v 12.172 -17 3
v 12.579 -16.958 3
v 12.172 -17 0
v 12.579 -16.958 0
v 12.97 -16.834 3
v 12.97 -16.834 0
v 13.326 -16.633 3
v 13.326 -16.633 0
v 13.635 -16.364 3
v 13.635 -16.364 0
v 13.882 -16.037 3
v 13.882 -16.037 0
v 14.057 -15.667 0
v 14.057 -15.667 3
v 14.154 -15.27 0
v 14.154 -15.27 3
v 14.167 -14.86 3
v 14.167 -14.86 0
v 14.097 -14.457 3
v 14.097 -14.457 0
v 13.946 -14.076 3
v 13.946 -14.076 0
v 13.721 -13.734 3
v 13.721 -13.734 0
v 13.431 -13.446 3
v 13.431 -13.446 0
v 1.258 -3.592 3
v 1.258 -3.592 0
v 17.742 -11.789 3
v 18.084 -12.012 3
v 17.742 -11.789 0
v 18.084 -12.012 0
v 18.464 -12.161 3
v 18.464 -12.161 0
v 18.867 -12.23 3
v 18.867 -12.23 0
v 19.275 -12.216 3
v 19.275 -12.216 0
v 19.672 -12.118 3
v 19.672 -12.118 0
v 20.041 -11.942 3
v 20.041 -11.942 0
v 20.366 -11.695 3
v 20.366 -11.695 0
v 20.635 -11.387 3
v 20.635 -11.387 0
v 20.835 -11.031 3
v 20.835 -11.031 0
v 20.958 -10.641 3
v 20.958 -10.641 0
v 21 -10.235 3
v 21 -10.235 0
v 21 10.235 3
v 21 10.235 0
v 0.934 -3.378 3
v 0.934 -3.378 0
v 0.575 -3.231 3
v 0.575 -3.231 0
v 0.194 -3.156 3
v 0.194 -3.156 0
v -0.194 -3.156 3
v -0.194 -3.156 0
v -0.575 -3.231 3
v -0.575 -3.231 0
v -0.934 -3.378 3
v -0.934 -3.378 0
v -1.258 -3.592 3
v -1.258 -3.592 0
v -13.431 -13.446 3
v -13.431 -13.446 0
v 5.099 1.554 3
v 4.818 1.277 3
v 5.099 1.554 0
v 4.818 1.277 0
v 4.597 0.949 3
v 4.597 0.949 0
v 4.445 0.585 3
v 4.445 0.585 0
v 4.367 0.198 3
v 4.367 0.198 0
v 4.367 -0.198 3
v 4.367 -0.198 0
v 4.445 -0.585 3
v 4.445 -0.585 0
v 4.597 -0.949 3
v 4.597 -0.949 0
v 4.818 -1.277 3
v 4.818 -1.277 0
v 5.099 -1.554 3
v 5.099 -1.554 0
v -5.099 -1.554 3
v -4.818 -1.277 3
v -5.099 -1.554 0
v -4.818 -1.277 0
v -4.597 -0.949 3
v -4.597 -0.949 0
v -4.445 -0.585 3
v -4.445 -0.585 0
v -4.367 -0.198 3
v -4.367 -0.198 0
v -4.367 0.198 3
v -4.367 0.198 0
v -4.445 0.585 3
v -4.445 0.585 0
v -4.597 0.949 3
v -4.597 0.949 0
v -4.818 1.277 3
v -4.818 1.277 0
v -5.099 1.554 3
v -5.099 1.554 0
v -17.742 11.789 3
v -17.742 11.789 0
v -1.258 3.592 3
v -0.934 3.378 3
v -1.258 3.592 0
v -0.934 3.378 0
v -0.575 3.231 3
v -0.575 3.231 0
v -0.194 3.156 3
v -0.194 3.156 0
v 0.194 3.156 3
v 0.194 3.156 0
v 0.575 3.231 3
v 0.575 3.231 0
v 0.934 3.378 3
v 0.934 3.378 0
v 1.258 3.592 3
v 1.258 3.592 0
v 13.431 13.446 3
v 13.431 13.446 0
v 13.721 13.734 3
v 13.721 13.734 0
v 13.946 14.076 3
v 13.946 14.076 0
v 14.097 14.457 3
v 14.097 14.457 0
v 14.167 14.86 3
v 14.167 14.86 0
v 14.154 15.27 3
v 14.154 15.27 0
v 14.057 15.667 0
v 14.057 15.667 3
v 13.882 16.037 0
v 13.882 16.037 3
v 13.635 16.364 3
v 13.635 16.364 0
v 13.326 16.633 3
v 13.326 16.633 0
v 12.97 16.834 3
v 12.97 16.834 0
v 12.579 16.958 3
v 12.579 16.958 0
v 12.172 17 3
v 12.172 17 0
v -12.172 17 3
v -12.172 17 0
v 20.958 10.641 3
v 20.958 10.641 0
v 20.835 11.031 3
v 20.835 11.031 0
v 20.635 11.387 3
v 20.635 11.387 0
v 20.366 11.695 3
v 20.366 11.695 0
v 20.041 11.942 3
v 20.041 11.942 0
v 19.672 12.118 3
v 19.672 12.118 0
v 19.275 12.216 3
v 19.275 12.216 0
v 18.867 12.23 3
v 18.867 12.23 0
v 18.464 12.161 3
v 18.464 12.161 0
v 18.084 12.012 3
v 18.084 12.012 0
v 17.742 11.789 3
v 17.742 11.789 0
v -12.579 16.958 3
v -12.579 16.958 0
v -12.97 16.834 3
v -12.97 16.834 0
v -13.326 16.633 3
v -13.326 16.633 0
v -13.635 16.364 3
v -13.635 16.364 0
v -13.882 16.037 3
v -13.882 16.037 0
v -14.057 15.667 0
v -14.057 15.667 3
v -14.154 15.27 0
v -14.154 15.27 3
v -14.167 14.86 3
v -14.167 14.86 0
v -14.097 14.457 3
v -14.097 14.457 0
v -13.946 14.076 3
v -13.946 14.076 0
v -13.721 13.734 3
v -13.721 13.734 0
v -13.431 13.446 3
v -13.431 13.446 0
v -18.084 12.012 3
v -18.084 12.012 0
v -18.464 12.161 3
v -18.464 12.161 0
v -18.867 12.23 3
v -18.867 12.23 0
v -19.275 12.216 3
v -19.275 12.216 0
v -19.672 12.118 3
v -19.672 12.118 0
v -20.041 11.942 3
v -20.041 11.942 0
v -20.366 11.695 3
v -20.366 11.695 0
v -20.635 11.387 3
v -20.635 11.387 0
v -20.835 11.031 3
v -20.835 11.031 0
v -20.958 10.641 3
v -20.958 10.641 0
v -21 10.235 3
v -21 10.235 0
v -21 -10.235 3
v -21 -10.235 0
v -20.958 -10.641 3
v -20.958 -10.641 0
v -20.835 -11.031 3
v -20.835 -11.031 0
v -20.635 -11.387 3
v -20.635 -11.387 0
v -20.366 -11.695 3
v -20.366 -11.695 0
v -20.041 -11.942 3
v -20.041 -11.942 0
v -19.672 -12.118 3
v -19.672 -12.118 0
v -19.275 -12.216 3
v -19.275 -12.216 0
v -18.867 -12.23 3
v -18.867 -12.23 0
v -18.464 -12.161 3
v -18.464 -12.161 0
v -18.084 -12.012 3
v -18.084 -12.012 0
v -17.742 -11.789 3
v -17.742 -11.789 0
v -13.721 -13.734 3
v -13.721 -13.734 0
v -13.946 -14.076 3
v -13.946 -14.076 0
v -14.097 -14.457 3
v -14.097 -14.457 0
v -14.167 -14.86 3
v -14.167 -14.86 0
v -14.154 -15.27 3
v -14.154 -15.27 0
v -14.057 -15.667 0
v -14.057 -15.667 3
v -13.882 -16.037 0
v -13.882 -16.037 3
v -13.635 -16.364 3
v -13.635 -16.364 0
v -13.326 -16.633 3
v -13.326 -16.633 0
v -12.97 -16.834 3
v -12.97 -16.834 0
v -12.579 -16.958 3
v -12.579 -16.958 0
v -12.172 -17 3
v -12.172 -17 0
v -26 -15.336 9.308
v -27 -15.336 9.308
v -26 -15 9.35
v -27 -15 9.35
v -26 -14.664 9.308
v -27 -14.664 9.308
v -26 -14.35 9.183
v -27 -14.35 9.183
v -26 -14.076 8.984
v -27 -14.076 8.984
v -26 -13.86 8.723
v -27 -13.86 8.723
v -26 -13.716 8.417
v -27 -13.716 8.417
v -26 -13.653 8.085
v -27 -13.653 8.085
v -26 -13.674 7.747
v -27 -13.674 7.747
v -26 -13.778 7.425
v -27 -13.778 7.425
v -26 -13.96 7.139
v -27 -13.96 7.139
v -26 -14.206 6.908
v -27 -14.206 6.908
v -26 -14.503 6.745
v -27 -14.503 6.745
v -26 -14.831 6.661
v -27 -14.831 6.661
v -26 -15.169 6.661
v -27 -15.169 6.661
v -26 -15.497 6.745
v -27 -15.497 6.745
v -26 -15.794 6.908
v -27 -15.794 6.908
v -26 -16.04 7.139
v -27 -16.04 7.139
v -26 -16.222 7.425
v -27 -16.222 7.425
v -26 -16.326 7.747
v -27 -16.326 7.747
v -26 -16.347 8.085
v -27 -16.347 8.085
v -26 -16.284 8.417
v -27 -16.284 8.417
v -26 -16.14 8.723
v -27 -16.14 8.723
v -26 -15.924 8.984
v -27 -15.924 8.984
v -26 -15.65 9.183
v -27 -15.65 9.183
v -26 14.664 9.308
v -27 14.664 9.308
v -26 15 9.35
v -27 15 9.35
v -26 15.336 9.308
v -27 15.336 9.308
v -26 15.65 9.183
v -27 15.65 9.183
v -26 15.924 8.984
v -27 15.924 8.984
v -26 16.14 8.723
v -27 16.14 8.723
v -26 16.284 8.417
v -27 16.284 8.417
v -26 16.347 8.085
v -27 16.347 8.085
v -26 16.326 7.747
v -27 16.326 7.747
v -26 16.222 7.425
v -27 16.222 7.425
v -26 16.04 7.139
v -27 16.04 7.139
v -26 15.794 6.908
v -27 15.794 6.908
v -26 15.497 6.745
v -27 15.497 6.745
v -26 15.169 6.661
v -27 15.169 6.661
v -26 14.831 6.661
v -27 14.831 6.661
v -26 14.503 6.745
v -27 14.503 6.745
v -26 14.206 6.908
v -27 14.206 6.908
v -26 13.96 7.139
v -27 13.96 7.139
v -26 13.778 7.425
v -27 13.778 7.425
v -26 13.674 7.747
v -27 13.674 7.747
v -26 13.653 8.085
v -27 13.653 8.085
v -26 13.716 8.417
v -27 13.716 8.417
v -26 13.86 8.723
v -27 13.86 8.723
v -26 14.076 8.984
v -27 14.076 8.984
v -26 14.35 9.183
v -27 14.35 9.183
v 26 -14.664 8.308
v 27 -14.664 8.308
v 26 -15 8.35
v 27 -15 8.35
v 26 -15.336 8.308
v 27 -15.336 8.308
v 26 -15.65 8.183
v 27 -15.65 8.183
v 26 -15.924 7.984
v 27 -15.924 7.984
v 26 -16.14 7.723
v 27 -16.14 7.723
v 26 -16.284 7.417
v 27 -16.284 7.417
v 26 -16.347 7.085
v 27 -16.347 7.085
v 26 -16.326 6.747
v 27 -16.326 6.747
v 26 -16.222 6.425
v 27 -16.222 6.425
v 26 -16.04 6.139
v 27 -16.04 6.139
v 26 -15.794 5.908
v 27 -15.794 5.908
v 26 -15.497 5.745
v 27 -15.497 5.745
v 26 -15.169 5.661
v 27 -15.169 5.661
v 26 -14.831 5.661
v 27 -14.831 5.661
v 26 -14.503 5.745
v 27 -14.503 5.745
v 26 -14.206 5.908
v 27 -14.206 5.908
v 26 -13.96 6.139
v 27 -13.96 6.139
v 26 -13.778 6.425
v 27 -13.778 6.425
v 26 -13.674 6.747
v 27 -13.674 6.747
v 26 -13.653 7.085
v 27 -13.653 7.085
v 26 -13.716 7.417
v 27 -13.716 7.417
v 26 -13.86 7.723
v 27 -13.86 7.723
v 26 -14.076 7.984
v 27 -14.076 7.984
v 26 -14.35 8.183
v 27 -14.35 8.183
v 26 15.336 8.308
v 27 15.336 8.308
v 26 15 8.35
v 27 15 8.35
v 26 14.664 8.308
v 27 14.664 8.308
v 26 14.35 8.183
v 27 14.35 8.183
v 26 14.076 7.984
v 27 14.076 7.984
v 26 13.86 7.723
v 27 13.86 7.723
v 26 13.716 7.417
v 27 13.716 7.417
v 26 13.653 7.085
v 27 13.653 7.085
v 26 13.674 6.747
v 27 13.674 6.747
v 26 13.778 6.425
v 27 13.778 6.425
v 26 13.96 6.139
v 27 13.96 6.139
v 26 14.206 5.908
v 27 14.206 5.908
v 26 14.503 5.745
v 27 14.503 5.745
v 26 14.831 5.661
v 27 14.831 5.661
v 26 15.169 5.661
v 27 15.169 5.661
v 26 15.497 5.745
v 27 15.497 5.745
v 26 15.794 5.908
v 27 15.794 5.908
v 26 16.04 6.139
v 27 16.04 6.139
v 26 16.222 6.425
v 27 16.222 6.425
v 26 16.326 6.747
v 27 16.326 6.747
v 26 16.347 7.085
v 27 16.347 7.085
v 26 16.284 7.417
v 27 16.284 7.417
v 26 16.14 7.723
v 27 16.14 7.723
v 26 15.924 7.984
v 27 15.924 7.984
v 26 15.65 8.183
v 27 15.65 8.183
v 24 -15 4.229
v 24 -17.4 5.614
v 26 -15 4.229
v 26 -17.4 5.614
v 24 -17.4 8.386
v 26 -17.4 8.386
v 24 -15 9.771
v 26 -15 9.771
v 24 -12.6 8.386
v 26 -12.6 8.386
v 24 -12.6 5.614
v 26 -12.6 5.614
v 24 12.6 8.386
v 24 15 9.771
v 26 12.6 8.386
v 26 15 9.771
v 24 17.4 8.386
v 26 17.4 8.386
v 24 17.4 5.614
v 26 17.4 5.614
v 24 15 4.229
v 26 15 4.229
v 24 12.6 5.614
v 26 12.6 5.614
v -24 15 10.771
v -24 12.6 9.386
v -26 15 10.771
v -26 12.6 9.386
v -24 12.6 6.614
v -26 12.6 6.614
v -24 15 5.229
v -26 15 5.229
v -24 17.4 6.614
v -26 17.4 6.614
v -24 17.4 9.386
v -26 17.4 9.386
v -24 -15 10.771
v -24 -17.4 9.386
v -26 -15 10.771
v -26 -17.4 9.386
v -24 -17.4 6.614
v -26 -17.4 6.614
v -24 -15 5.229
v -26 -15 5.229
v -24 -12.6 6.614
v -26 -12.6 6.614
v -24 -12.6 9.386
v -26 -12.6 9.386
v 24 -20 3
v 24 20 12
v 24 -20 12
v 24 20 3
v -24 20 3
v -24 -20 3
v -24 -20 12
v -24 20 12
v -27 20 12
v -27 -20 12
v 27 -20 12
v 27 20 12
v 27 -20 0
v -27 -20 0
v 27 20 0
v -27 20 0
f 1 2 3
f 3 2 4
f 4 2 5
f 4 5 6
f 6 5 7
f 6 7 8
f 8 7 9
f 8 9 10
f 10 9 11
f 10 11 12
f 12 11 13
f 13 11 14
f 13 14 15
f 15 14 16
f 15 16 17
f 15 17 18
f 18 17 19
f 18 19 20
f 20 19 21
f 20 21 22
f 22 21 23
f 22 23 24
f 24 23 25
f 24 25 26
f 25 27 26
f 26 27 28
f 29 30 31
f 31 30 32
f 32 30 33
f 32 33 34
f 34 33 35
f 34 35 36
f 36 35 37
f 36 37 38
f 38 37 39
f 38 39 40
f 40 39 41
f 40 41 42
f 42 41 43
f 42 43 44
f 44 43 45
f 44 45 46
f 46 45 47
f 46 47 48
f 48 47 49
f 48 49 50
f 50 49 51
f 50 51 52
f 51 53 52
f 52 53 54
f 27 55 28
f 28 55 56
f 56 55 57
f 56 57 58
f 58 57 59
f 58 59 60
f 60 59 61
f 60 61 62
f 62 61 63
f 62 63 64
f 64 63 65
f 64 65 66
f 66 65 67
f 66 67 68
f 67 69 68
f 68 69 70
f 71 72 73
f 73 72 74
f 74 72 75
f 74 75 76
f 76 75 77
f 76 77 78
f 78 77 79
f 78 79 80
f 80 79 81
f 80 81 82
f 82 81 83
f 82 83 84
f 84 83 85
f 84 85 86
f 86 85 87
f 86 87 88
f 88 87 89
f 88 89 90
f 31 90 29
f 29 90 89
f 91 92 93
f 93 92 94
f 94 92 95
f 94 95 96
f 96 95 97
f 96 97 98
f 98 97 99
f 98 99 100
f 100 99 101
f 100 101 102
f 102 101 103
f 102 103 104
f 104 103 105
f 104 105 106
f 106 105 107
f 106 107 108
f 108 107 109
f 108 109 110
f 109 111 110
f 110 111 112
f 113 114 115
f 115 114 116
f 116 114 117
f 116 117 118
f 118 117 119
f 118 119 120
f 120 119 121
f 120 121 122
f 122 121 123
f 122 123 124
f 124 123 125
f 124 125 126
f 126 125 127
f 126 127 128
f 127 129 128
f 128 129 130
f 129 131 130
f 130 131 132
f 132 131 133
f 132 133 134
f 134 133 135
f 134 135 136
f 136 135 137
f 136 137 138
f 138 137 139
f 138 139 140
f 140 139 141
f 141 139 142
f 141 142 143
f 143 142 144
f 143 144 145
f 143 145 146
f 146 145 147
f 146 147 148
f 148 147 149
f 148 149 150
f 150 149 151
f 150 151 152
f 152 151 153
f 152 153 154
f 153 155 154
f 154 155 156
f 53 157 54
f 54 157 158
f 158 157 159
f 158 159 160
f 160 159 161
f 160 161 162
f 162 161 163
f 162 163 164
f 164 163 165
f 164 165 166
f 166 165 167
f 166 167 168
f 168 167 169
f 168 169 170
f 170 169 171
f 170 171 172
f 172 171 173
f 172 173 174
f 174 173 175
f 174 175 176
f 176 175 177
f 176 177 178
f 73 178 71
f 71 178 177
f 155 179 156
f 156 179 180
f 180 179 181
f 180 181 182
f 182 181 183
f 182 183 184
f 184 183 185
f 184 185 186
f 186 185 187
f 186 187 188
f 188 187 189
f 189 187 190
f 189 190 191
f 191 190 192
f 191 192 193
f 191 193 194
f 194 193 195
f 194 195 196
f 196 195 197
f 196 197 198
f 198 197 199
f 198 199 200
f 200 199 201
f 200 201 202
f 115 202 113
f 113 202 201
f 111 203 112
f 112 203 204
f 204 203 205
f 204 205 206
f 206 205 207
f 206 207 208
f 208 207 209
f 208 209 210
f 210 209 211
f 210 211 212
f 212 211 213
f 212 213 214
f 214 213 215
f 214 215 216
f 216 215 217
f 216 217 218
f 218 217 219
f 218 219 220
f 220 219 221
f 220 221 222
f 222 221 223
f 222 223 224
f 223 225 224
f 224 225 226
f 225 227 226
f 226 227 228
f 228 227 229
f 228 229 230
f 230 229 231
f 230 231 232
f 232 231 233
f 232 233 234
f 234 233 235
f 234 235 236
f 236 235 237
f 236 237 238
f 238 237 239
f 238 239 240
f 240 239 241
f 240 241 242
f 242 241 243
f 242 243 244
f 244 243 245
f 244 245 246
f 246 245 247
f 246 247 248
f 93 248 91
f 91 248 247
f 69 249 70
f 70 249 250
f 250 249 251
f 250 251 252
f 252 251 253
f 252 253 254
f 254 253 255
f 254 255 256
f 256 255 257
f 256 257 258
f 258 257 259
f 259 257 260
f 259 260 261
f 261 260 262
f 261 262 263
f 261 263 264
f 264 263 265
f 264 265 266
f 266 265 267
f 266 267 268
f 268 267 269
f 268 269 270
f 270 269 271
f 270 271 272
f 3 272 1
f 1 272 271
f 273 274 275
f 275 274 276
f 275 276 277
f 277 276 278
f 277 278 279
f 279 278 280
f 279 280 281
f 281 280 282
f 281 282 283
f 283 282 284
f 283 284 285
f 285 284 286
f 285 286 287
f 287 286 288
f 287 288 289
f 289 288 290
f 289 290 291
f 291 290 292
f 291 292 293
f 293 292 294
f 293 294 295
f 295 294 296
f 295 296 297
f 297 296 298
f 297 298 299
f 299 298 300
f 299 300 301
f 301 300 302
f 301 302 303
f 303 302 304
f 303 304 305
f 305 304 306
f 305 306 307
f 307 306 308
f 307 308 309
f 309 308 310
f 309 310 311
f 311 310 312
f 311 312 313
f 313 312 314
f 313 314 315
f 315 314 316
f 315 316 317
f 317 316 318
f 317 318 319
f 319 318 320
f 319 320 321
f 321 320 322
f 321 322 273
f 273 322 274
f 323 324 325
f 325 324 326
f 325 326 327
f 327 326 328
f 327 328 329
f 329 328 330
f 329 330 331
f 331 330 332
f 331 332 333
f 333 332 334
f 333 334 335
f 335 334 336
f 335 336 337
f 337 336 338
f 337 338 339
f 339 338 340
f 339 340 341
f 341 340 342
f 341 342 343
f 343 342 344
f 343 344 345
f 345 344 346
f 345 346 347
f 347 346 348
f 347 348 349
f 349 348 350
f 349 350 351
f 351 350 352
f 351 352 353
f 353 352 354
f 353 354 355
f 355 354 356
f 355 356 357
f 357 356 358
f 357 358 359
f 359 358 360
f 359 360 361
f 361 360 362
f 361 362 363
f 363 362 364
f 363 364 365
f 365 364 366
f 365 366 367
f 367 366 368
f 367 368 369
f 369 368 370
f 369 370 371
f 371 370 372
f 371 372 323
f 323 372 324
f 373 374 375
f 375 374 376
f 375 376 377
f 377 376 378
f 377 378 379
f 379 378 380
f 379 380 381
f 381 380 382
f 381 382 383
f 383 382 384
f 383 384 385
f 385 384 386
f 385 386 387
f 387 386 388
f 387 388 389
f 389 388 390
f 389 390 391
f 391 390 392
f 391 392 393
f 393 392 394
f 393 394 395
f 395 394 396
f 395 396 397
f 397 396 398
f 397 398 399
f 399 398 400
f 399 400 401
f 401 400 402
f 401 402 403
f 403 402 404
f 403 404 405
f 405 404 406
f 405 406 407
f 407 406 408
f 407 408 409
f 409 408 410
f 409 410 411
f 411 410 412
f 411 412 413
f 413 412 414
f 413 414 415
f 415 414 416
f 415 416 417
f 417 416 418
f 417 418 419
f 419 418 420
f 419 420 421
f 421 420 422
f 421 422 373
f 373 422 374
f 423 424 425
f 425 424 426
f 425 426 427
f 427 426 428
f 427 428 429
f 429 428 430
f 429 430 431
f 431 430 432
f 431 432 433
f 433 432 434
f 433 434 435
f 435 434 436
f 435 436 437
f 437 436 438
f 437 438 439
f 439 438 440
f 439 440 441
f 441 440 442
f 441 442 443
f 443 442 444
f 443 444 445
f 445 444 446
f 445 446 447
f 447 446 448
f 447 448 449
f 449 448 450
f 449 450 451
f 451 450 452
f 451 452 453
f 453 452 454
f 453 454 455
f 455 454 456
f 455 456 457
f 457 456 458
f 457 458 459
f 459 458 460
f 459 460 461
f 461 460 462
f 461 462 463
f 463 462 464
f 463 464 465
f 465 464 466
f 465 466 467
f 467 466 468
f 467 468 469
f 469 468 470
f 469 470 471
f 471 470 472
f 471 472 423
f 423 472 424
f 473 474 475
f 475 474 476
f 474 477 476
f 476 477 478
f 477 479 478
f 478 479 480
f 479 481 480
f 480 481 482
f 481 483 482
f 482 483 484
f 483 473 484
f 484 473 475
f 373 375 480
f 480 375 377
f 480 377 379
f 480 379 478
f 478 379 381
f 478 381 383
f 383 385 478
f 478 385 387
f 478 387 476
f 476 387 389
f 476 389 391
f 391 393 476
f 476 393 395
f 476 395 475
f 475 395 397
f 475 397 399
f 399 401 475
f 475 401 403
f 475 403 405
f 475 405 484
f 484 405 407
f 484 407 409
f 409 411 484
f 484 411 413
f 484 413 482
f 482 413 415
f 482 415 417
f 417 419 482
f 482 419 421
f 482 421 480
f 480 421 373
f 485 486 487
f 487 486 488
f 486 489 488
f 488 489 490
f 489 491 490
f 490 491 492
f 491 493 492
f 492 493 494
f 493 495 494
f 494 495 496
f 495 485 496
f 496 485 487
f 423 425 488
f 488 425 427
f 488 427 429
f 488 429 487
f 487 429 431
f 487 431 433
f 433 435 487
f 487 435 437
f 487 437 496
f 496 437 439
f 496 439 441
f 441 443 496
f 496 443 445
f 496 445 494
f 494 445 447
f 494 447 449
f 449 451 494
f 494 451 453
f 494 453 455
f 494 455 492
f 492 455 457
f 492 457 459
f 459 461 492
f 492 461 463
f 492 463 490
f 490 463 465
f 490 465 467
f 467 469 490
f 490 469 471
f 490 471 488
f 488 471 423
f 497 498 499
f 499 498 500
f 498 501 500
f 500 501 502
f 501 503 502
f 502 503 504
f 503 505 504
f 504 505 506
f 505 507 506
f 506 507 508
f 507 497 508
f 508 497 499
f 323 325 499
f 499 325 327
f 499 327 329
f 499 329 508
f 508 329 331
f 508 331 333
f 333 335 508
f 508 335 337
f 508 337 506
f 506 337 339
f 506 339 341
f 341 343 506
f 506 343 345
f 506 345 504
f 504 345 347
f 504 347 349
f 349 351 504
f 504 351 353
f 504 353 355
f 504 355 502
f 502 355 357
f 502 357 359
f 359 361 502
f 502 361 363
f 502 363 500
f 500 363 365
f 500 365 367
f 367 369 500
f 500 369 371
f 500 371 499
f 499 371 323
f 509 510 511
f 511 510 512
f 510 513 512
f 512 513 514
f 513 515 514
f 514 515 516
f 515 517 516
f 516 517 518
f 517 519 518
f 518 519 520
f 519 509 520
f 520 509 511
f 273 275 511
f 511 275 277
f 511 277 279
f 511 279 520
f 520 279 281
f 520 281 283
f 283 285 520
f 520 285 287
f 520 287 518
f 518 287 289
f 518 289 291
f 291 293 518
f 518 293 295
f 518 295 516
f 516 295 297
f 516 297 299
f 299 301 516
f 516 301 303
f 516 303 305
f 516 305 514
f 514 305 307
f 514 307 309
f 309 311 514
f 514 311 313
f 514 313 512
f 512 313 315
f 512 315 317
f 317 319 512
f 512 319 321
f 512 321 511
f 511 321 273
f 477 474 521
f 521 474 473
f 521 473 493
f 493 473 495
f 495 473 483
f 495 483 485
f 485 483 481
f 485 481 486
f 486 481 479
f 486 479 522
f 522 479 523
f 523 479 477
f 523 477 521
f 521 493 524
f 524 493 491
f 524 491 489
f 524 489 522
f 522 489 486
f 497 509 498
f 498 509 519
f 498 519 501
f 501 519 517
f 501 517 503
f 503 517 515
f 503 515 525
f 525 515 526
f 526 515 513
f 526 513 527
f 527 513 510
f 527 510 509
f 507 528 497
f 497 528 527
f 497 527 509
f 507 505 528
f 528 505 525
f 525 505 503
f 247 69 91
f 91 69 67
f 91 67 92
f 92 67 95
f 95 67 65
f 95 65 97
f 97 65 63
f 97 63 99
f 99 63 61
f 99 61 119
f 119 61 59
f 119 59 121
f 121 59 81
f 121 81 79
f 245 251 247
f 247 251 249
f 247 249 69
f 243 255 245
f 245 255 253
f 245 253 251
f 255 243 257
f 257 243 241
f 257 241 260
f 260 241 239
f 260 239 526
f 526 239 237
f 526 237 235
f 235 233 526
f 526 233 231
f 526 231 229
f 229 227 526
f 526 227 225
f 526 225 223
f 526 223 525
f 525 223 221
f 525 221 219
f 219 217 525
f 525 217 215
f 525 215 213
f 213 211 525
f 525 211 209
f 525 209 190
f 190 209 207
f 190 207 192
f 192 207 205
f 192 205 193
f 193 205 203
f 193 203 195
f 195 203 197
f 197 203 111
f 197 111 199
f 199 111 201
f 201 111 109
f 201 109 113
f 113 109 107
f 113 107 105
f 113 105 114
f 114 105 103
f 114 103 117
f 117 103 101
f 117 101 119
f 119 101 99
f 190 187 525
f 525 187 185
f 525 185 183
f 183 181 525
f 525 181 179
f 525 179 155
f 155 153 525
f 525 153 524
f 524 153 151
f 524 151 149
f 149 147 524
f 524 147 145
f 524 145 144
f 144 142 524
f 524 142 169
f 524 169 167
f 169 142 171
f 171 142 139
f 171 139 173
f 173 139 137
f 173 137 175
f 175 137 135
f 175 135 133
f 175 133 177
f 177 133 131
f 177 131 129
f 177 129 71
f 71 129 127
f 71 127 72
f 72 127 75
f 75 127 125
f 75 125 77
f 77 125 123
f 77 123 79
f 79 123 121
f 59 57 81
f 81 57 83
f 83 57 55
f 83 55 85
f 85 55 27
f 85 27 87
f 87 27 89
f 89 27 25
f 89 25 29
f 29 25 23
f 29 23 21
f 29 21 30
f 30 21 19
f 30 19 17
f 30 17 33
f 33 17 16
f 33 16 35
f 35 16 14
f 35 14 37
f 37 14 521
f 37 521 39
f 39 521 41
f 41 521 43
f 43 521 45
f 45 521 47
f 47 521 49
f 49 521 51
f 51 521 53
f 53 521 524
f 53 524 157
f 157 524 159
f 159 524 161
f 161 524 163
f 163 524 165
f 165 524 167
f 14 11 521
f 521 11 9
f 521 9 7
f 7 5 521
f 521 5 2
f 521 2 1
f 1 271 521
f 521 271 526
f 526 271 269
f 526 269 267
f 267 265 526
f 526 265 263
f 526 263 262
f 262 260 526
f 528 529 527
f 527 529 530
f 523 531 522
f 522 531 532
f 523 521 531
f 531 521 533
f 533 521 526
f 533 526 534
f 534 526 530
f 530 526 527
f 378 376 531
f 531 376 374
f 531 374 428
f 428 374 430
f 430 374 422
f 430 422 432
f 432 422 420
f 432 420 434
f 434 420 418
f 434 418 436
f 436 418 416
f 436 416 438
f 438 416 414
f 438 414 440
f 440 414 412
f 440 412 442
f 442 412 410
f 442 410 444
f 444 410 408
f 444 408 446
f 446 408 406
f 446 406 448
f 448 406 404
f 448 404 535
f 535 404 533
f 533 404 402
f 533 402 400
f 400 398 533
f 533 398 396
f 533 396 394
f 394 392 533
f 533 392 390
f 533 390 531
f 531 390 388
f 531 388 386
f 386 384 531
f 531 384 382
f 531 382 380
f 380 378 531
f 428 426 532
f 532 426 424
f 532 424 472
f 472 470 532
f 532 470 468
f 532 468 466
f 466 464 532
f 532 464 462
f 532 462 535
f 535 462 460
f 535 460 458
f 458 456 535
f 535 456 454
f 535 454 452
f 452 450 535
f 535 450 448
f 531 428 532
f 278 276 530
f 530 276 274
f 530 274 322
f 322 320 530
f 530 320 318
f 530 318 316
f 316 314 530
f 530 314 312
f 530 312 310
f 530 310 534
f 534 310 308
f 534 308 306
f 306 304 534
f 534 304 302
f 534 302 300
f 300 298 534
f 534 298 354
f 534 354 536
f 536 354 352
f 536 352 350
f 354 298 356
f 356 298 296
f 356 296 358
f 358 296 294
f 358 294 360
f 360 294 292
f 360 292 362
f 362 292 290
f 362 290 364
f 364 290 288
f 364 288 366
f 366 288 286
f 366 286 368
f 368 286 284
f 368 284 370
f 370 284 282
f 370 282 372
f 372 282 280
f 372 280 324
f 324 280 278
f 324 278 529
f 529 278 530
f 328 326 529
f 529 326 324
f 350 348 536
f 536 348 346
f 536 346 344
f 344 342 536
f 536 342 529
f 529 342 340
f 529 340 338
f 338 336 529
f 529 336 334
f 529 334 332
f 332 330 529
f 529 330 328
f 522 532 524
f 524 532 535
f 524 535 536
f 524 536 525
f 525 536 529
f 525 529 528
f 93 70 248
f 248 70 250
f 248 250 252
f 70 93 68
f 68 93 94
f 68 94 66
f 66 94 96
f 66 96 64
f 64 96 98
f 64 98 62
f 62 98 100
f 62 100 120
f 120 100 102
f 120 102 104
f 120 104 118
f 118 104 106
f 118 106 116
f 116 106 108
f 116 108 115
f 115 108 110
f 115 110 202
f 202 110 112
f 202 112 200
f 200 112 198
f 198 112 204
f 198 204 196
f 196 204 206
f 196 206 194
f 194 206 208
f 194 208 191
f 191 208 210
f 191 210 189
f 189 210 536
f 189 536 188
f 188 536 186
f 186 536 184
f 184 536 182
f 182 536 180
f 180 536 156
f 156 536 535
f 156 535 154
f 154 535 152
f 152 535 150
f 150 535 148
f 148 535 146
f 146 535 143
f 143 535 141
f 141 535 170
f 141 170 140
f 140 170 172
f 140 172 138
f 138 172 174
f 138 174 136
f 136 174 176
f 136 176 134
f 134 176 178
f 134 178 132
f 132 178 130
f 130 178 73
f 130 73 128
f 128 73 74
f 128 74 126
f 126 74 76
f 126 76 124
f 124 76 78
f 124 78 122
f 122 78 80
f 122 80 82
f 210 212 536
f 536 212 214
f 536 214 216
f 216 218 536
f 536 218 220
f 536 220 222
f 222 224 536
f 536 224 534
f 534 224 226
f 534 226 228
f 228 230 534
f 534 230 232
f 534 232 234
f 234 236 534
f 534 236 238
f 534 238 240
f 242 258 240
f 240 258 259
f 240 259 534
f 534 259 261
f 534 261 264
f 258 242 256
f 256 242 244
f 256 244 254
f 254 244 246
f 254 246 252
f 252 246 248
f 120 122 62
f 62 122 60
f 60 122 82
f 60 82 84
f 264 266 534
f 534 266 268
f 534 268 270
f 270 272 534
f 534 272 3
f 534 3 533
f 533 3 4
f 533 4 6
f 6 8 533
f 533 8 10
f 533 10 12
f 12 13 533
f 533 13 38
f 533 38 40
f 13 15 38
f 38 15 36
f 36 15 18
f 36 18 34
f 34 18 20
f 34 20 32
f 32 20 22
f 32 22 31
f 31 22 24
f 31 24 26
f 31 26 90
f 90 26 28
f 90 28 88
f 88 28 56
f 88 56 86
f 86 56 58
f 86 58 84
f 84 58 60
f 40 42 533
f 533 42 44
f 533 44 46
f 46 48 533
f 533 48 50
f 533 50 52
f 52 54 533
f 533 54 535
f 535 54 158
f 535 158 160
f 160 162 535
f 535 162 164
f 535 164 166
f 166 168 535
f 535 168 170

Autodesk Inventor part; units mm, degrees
ref_plane "YZ Plane" through (0, 0, 0) normal (1, 0, 0) x (0, 1, 0)
ref_plane "XZ Plane" through (0, 0, 0) normal (0, 1, 0) x (-1, 0, 0)
ref_plane "XY Plane" through (0, 0, 0) normal (0, 0, 1) x (1, 0, 0)
sketch "Sketch1" plane through (0, 0, 0) normal (0, 0, 1) x (1, 0, 0)
  line L0 (-27, 20) -> (27, 20)
  line L1 (27, 20) -> (27, -20)
  line L2 (27, -20) -> (-27, -20)
  line L3 (-27, -20) -> (-27, 20)
  line L4 (-27, 20) -> (27, -20) construction
  line L5 (27, 20) -> (-27, -20) construction
  point P0 (0, 0)
  dimension "d0" = 54
  dimension "d1" = 40
extrude "Extrusion1" add sketch "Sketch1" along normal blind 12
sketch "Sketch2" plane through (0, 0, 12) normal (0, 0, 1) x (1, 0, 0)
  line L0 (-24, -20) -> (24, -20)
  line L1 (24, -20) -> (24, 20)
  line L2 (24, 20) -> (-24, 20)
  line L3 (-24, 20) -> (-24, -20)
  line L4 (-24, -20) -> (24, 20) construction
  line L5 (24, -20) -> (-24, 20) construction
  point P0 (0, 0)
  dimension "d4" = 48
  dimension "d5" = 40
extrude "Extrusion2" cut sketch "Sketch2" against normal blind 9
sketch "Sketch3" plane through (-24, -20, 12) normal (1, 0, 0) x (0, 0, -1)
  line L0 (9, 0) -> (0, 0) projected
  line L1 (0, 0) -> (0, 5)
  line L2 (0, 40) -> (0, 0) projected
  line L3 (0, 5) -> (0, 35)
  line L4 (0, 5) -> (4, 5)
  line L5 (0, 0) -> (0, 40) projected
  line L6 (0, 5) -> (4, 5) construction
  line L7 (0, 35) -> (4, 35)
  line L8 (0, 35) -> (4, 35) construction
  line L9 (1.2287, 35) -> (2.6144, 37.4)
  line L10 (2.6144, 37.4) -> (5.3856, 37.4)
  line L11 (5.3856, 37.4) -> (6.7713, 35)
  line L12 (6.7713, 35) -> (5.3856, 32.6)
  line L13 (5.3856, 32.6) -> (2.6144, 32.6)
  line L14 (2.6144, 32.6) -> (1.2287, 35)
  line L15 (1.2287, 5) -> (2.6144, 7.4)
  line L16 (2.6144, 7.4) -> (5.3856, 7.4)
  line L17 (5.3856, 7.4) -> (6.7713, 5)
  line L18 (6.7713, 5) -> (5.3856, 2.6)
  line L19 (5.3856, 2.6) -> (2.6144, 2.6)
  line L20 (2.6144, 2.6) -> (1.2287, 5)
  line L21 (9, 40) -> (9, 0) construction
  line L22 (9, 0) -> (9, 40) construction
  point P0 (12, 20)
  dimension "d8" = 5
  dimension "d9" = 30
  dimension "d10" = 180
  dimension "d11" = 4
  dimension "d12" = 0
  dimension "d13" = 4
  dimension "d14" = 0
  dimension "d15" = 4.8
  dimension "d16" = 4.8
extrude "Extrusion3" cut sketch "Sketch3" against normal blind 2
sketch "Sketch4" plane through (24, -20, 12) normal (-1, 0, 0) x (0, 0, 1)
  line L0 (-9, 0) -> (-9, 5)
  line L1 (-9, 40) -> (-9, 0) projected
  line L2 (-9, 5) -> (-9, 20)
  line L3 (-9, 20) -> (-1, 20)
  line L4 (-9, 5) -> (-5, 5)
  line L5 (-9, 5) -> (-5, 5) construction
  line L6 (-7.7713, 5) -> (-6.3856, 7.4)
  line L7 (-6.3856, 7.4) -> (-3.6144, 7.4)
  line L8 (-3.6144, 7.4) -> (-2.2287, 5)
  line L9 (-2.2287, 5) -> (-3.6144, 2.6)
  line L10 (-3.6144, 2.6) -> (-6.3856, 2.6)
  line L11 (-6.3856, 2.6) -> (-7.7713, 5)
  line L12 (-7.7713, 35) -> (-6.3856, 32.6)
  line L13 (-6.3856, 32.6) -> (-3.6144, 32.6)
  line L14 (-3.6144, 32.6) -> (-2.2287, 35)
  line L15 (-2.2287, 35) -> (-3.6144, 37.4)
  line L16 (-3.6144, 37.4) -> (-6.3856, 37.4)
  line L17 (-6.3856, 37.4) -> (-7.7713, 35)
  point P0 (-12, 20)
  dimension "d19" = 5
  dimension "d20" = 15
  dimension "d21" = 180
  dimension "d22" = 8
  dimension "d23" = 90
  dimension "d24" = 4
  dimension "d25" = 0
  dimension "d26" = 4.8
extrude "Extrusion4" cut sketch "Sketch4" against normal blind 2
sketch "Sketch6" plane through (24, -20, 12) normal (-1, 0, 0) x (0, 0, 1)
  line L0 (-9, 0) -> (-9, 5)
  line L1 (-9, 0) -> (-4, 0) construction
  line L2 (-9, 5) -> (-5, 5)
  line L3 (-9, 5) -> (-9, 20)
  line L4 (-9, 5) -> (6, 5) construction
  line L5 (-9, 20) -> (-1, 20)
  circle A0 centre (-5, 5) radius 1.35
  circle A1 centre (-5, 35) radius 1.35
  point P0 (-12, 20)
  dimension "d29" = 5
  dimension "d30" = 90
  dimension "d31" = 4
  dimension "d32" = 90
  dimension "d33" = 15
  dimension "d34" = 90
  dimension "d35" = 8
  dimension "d36" = 90
  dimension "d37" = 2.7
extrude "Extrusion5" cut sketch "Sketch6" against normal up to surface (3 mm away)
sketch "Sketch7" plane through (-27, -20, 0) normal (-1, 0, 0) x (0, 0, 1)
  line L0 (12, 0) -> (12, 40) projected
  line L1 (12, 0) -> (12, 5)
  line L2 (12, 0) -> (17, 0) construction
  line L3 (12, 5) -> (8, 5)
  line L4 (12, 5) -> (12, 20)
  line L5 (12, 5) -> (27, 5) construction
  line L6 (12, 20) -> (0, 20)
  circle A0 centre (8, 5) radius 1.35
  circle A1 centre (8, 35) radius 1.35
  dimension "d40" = 5
  dimension "d41" = 90
  dimension "d42" = 4
  dimension "d43" = 90
  dimension "d44" = 15
  dimension "d45" = 90
  dimension "d46" = 2.7
extrude "Extrusion6" cut sketch "Sketch7" against normal up to surface (3 mm away)
sketch "Sketch8" plane through (0, 0, 3) normal (0, 0, 1) x (1, 0, 0)
  line L0 (24, -20) -> (-24, -20) projected
  line L1 (-24, -20) -> (-21, -20)
  line L2 (-24, -20) -> (-21, -20) construction
  line L3 (-24, 20) -> (24, 20) projected
  line L4 (-21, -20) -> (-21, -17)
  line L5 (-21, -20) -> (-18, -20) construction
  line L6 (-21, -17) -> (21, -17) construction
  line L7 (21, -17) -> (21, 17) construction
  line L8 (21, 17) -> (-21, 17)
  line L9 (-21, 17) -> (-21, -17)
  line L10 (21, -17) -> (21, -15)
  line L11 (21, -17) -> (23, -17) construction
  line L12 (21, -17) -> (19, -17)
  line L13 (21, -17) -> (23, -17) construction
  line L14 (21, -15) -> (41, -15) construction
  line L15 (-21, 17) -> (-21, 15)
  line L16 (21, 17) -> (-21, -17)
  line L17 (-21, 17) -> (21, -17)
  line L18 (-19.7416, -18.5545) -> (22.2584, 15.4455) construction
  line L19 (22.2584, 15.4455) -> (19.7416, 18.5545)
  line L20 (19.7416, 18.5545) -> (-22.2584, -15.4455) construction
  line L21 (-22.2584, -15.4455) -> (-19.7416, -18.5545)
  line L22 (-19.7416, -18.5545) -> (19.7416, 18.5545) construction
  line L23 (22.2584, 15.4455) -> (-22.2584, -15.4455) construction
  line L24 (-22.2584, 15.4455) -> (19.7416, -18.5545) construction
  line L25 (19.7416, -18.5545) -> (22.2584, -15.4455)
  line L26 (22.2584, -15.4455) -> (-19.7416, 18.5545) construction
  line L27 (-19.7416, 18.5545) -> (-22.2584, 15.4455)
  line L28 (-22.2584, 15.4455) -> (22.2584, -15.4455) construction
  line L29 (19.7416, -18.5545) -> (-19.7416, 18.5545) construction
  line L30 (0, -2.5732) -> (-17.8214, -17)
  line L31 (0, -2.5732) -> (17.8214, -17)
  line L32 (17.8214, -17) -> (-17.8214, -17)
  line L33 (24, -20) -> (-24, -20) construction
  line L34 (24, 20) -> (24, -20) construction
  line L35 (-24, 20) -> (24, 20) construction
  line L36 (-24, -20) -> (-24, 20) construction
  line L37 (-21, 0) -> (21, 0) construction
  line L38 (0, 17) -> (0, -17) construction
  line L39 (0, 2.5732) -> (-17.8214, 17)
  line L40 (0, 2.5732) -> (17.8214, 17)
  line L41 (17.8214, 17) -> (-17.8214, 17)
  line L42 (3.1786, 0) -> (21, -14.4268)
  line L43 (3.1786, 0) -> (21, 14.4268)
  line L44 (21, 14.4268) -> (21, -14.4268)
  line L45 (-3.1786, 0) -> (-21, -14.4268)
  line L46 (-3.1786, 0) -> (-21, 14.4268)
  line L47 (-21, 14.4268) -> (-21, -14.4268)
  point P0 (0, 0)
  dimension "d49" = 3
  dimension "d50" = 0
  dimension "d52" = 3
  dimension "d53" = 90
  dimension "d54" = 42
  dimension "d55" = 34
  dimension "d56" = 2
  dimension "d57" = 90
  dimension "d58" = 2
  dimension "d59" = 180
  dimension "d64" = 2
  dimension "d65" = 4
  dimension "d66" = 54.037
  dimension "d67" = 4
  dimension "d68" = 54.037
extrude "Extrusion7" cut sketch "Sketch8" against normal up to surface (3 mm away) contours L40 L39 L8 | L9 L46 L45 | L31 L32 L30 | L43 L44 L42
fillet "Fillet1" radius 2 12 edges at (-17.8214, -17, 1.5) (-21, -14.4268, 1.5) (-21, 14.4268, 1.5) (-17.8214, 17, 1.5) (21, 14.4268, 1.5) (17.8214, 17, 1.5) (0, 2.5732, 1.5) (-3.1786, 0, 1.5) (3.1786, 0, 1.5) (0, -2.5732, 1.5) (21, -14.4268, 1.5) (17.8214, -17, 1.5)
properties part number "upper_leg_spacer"
